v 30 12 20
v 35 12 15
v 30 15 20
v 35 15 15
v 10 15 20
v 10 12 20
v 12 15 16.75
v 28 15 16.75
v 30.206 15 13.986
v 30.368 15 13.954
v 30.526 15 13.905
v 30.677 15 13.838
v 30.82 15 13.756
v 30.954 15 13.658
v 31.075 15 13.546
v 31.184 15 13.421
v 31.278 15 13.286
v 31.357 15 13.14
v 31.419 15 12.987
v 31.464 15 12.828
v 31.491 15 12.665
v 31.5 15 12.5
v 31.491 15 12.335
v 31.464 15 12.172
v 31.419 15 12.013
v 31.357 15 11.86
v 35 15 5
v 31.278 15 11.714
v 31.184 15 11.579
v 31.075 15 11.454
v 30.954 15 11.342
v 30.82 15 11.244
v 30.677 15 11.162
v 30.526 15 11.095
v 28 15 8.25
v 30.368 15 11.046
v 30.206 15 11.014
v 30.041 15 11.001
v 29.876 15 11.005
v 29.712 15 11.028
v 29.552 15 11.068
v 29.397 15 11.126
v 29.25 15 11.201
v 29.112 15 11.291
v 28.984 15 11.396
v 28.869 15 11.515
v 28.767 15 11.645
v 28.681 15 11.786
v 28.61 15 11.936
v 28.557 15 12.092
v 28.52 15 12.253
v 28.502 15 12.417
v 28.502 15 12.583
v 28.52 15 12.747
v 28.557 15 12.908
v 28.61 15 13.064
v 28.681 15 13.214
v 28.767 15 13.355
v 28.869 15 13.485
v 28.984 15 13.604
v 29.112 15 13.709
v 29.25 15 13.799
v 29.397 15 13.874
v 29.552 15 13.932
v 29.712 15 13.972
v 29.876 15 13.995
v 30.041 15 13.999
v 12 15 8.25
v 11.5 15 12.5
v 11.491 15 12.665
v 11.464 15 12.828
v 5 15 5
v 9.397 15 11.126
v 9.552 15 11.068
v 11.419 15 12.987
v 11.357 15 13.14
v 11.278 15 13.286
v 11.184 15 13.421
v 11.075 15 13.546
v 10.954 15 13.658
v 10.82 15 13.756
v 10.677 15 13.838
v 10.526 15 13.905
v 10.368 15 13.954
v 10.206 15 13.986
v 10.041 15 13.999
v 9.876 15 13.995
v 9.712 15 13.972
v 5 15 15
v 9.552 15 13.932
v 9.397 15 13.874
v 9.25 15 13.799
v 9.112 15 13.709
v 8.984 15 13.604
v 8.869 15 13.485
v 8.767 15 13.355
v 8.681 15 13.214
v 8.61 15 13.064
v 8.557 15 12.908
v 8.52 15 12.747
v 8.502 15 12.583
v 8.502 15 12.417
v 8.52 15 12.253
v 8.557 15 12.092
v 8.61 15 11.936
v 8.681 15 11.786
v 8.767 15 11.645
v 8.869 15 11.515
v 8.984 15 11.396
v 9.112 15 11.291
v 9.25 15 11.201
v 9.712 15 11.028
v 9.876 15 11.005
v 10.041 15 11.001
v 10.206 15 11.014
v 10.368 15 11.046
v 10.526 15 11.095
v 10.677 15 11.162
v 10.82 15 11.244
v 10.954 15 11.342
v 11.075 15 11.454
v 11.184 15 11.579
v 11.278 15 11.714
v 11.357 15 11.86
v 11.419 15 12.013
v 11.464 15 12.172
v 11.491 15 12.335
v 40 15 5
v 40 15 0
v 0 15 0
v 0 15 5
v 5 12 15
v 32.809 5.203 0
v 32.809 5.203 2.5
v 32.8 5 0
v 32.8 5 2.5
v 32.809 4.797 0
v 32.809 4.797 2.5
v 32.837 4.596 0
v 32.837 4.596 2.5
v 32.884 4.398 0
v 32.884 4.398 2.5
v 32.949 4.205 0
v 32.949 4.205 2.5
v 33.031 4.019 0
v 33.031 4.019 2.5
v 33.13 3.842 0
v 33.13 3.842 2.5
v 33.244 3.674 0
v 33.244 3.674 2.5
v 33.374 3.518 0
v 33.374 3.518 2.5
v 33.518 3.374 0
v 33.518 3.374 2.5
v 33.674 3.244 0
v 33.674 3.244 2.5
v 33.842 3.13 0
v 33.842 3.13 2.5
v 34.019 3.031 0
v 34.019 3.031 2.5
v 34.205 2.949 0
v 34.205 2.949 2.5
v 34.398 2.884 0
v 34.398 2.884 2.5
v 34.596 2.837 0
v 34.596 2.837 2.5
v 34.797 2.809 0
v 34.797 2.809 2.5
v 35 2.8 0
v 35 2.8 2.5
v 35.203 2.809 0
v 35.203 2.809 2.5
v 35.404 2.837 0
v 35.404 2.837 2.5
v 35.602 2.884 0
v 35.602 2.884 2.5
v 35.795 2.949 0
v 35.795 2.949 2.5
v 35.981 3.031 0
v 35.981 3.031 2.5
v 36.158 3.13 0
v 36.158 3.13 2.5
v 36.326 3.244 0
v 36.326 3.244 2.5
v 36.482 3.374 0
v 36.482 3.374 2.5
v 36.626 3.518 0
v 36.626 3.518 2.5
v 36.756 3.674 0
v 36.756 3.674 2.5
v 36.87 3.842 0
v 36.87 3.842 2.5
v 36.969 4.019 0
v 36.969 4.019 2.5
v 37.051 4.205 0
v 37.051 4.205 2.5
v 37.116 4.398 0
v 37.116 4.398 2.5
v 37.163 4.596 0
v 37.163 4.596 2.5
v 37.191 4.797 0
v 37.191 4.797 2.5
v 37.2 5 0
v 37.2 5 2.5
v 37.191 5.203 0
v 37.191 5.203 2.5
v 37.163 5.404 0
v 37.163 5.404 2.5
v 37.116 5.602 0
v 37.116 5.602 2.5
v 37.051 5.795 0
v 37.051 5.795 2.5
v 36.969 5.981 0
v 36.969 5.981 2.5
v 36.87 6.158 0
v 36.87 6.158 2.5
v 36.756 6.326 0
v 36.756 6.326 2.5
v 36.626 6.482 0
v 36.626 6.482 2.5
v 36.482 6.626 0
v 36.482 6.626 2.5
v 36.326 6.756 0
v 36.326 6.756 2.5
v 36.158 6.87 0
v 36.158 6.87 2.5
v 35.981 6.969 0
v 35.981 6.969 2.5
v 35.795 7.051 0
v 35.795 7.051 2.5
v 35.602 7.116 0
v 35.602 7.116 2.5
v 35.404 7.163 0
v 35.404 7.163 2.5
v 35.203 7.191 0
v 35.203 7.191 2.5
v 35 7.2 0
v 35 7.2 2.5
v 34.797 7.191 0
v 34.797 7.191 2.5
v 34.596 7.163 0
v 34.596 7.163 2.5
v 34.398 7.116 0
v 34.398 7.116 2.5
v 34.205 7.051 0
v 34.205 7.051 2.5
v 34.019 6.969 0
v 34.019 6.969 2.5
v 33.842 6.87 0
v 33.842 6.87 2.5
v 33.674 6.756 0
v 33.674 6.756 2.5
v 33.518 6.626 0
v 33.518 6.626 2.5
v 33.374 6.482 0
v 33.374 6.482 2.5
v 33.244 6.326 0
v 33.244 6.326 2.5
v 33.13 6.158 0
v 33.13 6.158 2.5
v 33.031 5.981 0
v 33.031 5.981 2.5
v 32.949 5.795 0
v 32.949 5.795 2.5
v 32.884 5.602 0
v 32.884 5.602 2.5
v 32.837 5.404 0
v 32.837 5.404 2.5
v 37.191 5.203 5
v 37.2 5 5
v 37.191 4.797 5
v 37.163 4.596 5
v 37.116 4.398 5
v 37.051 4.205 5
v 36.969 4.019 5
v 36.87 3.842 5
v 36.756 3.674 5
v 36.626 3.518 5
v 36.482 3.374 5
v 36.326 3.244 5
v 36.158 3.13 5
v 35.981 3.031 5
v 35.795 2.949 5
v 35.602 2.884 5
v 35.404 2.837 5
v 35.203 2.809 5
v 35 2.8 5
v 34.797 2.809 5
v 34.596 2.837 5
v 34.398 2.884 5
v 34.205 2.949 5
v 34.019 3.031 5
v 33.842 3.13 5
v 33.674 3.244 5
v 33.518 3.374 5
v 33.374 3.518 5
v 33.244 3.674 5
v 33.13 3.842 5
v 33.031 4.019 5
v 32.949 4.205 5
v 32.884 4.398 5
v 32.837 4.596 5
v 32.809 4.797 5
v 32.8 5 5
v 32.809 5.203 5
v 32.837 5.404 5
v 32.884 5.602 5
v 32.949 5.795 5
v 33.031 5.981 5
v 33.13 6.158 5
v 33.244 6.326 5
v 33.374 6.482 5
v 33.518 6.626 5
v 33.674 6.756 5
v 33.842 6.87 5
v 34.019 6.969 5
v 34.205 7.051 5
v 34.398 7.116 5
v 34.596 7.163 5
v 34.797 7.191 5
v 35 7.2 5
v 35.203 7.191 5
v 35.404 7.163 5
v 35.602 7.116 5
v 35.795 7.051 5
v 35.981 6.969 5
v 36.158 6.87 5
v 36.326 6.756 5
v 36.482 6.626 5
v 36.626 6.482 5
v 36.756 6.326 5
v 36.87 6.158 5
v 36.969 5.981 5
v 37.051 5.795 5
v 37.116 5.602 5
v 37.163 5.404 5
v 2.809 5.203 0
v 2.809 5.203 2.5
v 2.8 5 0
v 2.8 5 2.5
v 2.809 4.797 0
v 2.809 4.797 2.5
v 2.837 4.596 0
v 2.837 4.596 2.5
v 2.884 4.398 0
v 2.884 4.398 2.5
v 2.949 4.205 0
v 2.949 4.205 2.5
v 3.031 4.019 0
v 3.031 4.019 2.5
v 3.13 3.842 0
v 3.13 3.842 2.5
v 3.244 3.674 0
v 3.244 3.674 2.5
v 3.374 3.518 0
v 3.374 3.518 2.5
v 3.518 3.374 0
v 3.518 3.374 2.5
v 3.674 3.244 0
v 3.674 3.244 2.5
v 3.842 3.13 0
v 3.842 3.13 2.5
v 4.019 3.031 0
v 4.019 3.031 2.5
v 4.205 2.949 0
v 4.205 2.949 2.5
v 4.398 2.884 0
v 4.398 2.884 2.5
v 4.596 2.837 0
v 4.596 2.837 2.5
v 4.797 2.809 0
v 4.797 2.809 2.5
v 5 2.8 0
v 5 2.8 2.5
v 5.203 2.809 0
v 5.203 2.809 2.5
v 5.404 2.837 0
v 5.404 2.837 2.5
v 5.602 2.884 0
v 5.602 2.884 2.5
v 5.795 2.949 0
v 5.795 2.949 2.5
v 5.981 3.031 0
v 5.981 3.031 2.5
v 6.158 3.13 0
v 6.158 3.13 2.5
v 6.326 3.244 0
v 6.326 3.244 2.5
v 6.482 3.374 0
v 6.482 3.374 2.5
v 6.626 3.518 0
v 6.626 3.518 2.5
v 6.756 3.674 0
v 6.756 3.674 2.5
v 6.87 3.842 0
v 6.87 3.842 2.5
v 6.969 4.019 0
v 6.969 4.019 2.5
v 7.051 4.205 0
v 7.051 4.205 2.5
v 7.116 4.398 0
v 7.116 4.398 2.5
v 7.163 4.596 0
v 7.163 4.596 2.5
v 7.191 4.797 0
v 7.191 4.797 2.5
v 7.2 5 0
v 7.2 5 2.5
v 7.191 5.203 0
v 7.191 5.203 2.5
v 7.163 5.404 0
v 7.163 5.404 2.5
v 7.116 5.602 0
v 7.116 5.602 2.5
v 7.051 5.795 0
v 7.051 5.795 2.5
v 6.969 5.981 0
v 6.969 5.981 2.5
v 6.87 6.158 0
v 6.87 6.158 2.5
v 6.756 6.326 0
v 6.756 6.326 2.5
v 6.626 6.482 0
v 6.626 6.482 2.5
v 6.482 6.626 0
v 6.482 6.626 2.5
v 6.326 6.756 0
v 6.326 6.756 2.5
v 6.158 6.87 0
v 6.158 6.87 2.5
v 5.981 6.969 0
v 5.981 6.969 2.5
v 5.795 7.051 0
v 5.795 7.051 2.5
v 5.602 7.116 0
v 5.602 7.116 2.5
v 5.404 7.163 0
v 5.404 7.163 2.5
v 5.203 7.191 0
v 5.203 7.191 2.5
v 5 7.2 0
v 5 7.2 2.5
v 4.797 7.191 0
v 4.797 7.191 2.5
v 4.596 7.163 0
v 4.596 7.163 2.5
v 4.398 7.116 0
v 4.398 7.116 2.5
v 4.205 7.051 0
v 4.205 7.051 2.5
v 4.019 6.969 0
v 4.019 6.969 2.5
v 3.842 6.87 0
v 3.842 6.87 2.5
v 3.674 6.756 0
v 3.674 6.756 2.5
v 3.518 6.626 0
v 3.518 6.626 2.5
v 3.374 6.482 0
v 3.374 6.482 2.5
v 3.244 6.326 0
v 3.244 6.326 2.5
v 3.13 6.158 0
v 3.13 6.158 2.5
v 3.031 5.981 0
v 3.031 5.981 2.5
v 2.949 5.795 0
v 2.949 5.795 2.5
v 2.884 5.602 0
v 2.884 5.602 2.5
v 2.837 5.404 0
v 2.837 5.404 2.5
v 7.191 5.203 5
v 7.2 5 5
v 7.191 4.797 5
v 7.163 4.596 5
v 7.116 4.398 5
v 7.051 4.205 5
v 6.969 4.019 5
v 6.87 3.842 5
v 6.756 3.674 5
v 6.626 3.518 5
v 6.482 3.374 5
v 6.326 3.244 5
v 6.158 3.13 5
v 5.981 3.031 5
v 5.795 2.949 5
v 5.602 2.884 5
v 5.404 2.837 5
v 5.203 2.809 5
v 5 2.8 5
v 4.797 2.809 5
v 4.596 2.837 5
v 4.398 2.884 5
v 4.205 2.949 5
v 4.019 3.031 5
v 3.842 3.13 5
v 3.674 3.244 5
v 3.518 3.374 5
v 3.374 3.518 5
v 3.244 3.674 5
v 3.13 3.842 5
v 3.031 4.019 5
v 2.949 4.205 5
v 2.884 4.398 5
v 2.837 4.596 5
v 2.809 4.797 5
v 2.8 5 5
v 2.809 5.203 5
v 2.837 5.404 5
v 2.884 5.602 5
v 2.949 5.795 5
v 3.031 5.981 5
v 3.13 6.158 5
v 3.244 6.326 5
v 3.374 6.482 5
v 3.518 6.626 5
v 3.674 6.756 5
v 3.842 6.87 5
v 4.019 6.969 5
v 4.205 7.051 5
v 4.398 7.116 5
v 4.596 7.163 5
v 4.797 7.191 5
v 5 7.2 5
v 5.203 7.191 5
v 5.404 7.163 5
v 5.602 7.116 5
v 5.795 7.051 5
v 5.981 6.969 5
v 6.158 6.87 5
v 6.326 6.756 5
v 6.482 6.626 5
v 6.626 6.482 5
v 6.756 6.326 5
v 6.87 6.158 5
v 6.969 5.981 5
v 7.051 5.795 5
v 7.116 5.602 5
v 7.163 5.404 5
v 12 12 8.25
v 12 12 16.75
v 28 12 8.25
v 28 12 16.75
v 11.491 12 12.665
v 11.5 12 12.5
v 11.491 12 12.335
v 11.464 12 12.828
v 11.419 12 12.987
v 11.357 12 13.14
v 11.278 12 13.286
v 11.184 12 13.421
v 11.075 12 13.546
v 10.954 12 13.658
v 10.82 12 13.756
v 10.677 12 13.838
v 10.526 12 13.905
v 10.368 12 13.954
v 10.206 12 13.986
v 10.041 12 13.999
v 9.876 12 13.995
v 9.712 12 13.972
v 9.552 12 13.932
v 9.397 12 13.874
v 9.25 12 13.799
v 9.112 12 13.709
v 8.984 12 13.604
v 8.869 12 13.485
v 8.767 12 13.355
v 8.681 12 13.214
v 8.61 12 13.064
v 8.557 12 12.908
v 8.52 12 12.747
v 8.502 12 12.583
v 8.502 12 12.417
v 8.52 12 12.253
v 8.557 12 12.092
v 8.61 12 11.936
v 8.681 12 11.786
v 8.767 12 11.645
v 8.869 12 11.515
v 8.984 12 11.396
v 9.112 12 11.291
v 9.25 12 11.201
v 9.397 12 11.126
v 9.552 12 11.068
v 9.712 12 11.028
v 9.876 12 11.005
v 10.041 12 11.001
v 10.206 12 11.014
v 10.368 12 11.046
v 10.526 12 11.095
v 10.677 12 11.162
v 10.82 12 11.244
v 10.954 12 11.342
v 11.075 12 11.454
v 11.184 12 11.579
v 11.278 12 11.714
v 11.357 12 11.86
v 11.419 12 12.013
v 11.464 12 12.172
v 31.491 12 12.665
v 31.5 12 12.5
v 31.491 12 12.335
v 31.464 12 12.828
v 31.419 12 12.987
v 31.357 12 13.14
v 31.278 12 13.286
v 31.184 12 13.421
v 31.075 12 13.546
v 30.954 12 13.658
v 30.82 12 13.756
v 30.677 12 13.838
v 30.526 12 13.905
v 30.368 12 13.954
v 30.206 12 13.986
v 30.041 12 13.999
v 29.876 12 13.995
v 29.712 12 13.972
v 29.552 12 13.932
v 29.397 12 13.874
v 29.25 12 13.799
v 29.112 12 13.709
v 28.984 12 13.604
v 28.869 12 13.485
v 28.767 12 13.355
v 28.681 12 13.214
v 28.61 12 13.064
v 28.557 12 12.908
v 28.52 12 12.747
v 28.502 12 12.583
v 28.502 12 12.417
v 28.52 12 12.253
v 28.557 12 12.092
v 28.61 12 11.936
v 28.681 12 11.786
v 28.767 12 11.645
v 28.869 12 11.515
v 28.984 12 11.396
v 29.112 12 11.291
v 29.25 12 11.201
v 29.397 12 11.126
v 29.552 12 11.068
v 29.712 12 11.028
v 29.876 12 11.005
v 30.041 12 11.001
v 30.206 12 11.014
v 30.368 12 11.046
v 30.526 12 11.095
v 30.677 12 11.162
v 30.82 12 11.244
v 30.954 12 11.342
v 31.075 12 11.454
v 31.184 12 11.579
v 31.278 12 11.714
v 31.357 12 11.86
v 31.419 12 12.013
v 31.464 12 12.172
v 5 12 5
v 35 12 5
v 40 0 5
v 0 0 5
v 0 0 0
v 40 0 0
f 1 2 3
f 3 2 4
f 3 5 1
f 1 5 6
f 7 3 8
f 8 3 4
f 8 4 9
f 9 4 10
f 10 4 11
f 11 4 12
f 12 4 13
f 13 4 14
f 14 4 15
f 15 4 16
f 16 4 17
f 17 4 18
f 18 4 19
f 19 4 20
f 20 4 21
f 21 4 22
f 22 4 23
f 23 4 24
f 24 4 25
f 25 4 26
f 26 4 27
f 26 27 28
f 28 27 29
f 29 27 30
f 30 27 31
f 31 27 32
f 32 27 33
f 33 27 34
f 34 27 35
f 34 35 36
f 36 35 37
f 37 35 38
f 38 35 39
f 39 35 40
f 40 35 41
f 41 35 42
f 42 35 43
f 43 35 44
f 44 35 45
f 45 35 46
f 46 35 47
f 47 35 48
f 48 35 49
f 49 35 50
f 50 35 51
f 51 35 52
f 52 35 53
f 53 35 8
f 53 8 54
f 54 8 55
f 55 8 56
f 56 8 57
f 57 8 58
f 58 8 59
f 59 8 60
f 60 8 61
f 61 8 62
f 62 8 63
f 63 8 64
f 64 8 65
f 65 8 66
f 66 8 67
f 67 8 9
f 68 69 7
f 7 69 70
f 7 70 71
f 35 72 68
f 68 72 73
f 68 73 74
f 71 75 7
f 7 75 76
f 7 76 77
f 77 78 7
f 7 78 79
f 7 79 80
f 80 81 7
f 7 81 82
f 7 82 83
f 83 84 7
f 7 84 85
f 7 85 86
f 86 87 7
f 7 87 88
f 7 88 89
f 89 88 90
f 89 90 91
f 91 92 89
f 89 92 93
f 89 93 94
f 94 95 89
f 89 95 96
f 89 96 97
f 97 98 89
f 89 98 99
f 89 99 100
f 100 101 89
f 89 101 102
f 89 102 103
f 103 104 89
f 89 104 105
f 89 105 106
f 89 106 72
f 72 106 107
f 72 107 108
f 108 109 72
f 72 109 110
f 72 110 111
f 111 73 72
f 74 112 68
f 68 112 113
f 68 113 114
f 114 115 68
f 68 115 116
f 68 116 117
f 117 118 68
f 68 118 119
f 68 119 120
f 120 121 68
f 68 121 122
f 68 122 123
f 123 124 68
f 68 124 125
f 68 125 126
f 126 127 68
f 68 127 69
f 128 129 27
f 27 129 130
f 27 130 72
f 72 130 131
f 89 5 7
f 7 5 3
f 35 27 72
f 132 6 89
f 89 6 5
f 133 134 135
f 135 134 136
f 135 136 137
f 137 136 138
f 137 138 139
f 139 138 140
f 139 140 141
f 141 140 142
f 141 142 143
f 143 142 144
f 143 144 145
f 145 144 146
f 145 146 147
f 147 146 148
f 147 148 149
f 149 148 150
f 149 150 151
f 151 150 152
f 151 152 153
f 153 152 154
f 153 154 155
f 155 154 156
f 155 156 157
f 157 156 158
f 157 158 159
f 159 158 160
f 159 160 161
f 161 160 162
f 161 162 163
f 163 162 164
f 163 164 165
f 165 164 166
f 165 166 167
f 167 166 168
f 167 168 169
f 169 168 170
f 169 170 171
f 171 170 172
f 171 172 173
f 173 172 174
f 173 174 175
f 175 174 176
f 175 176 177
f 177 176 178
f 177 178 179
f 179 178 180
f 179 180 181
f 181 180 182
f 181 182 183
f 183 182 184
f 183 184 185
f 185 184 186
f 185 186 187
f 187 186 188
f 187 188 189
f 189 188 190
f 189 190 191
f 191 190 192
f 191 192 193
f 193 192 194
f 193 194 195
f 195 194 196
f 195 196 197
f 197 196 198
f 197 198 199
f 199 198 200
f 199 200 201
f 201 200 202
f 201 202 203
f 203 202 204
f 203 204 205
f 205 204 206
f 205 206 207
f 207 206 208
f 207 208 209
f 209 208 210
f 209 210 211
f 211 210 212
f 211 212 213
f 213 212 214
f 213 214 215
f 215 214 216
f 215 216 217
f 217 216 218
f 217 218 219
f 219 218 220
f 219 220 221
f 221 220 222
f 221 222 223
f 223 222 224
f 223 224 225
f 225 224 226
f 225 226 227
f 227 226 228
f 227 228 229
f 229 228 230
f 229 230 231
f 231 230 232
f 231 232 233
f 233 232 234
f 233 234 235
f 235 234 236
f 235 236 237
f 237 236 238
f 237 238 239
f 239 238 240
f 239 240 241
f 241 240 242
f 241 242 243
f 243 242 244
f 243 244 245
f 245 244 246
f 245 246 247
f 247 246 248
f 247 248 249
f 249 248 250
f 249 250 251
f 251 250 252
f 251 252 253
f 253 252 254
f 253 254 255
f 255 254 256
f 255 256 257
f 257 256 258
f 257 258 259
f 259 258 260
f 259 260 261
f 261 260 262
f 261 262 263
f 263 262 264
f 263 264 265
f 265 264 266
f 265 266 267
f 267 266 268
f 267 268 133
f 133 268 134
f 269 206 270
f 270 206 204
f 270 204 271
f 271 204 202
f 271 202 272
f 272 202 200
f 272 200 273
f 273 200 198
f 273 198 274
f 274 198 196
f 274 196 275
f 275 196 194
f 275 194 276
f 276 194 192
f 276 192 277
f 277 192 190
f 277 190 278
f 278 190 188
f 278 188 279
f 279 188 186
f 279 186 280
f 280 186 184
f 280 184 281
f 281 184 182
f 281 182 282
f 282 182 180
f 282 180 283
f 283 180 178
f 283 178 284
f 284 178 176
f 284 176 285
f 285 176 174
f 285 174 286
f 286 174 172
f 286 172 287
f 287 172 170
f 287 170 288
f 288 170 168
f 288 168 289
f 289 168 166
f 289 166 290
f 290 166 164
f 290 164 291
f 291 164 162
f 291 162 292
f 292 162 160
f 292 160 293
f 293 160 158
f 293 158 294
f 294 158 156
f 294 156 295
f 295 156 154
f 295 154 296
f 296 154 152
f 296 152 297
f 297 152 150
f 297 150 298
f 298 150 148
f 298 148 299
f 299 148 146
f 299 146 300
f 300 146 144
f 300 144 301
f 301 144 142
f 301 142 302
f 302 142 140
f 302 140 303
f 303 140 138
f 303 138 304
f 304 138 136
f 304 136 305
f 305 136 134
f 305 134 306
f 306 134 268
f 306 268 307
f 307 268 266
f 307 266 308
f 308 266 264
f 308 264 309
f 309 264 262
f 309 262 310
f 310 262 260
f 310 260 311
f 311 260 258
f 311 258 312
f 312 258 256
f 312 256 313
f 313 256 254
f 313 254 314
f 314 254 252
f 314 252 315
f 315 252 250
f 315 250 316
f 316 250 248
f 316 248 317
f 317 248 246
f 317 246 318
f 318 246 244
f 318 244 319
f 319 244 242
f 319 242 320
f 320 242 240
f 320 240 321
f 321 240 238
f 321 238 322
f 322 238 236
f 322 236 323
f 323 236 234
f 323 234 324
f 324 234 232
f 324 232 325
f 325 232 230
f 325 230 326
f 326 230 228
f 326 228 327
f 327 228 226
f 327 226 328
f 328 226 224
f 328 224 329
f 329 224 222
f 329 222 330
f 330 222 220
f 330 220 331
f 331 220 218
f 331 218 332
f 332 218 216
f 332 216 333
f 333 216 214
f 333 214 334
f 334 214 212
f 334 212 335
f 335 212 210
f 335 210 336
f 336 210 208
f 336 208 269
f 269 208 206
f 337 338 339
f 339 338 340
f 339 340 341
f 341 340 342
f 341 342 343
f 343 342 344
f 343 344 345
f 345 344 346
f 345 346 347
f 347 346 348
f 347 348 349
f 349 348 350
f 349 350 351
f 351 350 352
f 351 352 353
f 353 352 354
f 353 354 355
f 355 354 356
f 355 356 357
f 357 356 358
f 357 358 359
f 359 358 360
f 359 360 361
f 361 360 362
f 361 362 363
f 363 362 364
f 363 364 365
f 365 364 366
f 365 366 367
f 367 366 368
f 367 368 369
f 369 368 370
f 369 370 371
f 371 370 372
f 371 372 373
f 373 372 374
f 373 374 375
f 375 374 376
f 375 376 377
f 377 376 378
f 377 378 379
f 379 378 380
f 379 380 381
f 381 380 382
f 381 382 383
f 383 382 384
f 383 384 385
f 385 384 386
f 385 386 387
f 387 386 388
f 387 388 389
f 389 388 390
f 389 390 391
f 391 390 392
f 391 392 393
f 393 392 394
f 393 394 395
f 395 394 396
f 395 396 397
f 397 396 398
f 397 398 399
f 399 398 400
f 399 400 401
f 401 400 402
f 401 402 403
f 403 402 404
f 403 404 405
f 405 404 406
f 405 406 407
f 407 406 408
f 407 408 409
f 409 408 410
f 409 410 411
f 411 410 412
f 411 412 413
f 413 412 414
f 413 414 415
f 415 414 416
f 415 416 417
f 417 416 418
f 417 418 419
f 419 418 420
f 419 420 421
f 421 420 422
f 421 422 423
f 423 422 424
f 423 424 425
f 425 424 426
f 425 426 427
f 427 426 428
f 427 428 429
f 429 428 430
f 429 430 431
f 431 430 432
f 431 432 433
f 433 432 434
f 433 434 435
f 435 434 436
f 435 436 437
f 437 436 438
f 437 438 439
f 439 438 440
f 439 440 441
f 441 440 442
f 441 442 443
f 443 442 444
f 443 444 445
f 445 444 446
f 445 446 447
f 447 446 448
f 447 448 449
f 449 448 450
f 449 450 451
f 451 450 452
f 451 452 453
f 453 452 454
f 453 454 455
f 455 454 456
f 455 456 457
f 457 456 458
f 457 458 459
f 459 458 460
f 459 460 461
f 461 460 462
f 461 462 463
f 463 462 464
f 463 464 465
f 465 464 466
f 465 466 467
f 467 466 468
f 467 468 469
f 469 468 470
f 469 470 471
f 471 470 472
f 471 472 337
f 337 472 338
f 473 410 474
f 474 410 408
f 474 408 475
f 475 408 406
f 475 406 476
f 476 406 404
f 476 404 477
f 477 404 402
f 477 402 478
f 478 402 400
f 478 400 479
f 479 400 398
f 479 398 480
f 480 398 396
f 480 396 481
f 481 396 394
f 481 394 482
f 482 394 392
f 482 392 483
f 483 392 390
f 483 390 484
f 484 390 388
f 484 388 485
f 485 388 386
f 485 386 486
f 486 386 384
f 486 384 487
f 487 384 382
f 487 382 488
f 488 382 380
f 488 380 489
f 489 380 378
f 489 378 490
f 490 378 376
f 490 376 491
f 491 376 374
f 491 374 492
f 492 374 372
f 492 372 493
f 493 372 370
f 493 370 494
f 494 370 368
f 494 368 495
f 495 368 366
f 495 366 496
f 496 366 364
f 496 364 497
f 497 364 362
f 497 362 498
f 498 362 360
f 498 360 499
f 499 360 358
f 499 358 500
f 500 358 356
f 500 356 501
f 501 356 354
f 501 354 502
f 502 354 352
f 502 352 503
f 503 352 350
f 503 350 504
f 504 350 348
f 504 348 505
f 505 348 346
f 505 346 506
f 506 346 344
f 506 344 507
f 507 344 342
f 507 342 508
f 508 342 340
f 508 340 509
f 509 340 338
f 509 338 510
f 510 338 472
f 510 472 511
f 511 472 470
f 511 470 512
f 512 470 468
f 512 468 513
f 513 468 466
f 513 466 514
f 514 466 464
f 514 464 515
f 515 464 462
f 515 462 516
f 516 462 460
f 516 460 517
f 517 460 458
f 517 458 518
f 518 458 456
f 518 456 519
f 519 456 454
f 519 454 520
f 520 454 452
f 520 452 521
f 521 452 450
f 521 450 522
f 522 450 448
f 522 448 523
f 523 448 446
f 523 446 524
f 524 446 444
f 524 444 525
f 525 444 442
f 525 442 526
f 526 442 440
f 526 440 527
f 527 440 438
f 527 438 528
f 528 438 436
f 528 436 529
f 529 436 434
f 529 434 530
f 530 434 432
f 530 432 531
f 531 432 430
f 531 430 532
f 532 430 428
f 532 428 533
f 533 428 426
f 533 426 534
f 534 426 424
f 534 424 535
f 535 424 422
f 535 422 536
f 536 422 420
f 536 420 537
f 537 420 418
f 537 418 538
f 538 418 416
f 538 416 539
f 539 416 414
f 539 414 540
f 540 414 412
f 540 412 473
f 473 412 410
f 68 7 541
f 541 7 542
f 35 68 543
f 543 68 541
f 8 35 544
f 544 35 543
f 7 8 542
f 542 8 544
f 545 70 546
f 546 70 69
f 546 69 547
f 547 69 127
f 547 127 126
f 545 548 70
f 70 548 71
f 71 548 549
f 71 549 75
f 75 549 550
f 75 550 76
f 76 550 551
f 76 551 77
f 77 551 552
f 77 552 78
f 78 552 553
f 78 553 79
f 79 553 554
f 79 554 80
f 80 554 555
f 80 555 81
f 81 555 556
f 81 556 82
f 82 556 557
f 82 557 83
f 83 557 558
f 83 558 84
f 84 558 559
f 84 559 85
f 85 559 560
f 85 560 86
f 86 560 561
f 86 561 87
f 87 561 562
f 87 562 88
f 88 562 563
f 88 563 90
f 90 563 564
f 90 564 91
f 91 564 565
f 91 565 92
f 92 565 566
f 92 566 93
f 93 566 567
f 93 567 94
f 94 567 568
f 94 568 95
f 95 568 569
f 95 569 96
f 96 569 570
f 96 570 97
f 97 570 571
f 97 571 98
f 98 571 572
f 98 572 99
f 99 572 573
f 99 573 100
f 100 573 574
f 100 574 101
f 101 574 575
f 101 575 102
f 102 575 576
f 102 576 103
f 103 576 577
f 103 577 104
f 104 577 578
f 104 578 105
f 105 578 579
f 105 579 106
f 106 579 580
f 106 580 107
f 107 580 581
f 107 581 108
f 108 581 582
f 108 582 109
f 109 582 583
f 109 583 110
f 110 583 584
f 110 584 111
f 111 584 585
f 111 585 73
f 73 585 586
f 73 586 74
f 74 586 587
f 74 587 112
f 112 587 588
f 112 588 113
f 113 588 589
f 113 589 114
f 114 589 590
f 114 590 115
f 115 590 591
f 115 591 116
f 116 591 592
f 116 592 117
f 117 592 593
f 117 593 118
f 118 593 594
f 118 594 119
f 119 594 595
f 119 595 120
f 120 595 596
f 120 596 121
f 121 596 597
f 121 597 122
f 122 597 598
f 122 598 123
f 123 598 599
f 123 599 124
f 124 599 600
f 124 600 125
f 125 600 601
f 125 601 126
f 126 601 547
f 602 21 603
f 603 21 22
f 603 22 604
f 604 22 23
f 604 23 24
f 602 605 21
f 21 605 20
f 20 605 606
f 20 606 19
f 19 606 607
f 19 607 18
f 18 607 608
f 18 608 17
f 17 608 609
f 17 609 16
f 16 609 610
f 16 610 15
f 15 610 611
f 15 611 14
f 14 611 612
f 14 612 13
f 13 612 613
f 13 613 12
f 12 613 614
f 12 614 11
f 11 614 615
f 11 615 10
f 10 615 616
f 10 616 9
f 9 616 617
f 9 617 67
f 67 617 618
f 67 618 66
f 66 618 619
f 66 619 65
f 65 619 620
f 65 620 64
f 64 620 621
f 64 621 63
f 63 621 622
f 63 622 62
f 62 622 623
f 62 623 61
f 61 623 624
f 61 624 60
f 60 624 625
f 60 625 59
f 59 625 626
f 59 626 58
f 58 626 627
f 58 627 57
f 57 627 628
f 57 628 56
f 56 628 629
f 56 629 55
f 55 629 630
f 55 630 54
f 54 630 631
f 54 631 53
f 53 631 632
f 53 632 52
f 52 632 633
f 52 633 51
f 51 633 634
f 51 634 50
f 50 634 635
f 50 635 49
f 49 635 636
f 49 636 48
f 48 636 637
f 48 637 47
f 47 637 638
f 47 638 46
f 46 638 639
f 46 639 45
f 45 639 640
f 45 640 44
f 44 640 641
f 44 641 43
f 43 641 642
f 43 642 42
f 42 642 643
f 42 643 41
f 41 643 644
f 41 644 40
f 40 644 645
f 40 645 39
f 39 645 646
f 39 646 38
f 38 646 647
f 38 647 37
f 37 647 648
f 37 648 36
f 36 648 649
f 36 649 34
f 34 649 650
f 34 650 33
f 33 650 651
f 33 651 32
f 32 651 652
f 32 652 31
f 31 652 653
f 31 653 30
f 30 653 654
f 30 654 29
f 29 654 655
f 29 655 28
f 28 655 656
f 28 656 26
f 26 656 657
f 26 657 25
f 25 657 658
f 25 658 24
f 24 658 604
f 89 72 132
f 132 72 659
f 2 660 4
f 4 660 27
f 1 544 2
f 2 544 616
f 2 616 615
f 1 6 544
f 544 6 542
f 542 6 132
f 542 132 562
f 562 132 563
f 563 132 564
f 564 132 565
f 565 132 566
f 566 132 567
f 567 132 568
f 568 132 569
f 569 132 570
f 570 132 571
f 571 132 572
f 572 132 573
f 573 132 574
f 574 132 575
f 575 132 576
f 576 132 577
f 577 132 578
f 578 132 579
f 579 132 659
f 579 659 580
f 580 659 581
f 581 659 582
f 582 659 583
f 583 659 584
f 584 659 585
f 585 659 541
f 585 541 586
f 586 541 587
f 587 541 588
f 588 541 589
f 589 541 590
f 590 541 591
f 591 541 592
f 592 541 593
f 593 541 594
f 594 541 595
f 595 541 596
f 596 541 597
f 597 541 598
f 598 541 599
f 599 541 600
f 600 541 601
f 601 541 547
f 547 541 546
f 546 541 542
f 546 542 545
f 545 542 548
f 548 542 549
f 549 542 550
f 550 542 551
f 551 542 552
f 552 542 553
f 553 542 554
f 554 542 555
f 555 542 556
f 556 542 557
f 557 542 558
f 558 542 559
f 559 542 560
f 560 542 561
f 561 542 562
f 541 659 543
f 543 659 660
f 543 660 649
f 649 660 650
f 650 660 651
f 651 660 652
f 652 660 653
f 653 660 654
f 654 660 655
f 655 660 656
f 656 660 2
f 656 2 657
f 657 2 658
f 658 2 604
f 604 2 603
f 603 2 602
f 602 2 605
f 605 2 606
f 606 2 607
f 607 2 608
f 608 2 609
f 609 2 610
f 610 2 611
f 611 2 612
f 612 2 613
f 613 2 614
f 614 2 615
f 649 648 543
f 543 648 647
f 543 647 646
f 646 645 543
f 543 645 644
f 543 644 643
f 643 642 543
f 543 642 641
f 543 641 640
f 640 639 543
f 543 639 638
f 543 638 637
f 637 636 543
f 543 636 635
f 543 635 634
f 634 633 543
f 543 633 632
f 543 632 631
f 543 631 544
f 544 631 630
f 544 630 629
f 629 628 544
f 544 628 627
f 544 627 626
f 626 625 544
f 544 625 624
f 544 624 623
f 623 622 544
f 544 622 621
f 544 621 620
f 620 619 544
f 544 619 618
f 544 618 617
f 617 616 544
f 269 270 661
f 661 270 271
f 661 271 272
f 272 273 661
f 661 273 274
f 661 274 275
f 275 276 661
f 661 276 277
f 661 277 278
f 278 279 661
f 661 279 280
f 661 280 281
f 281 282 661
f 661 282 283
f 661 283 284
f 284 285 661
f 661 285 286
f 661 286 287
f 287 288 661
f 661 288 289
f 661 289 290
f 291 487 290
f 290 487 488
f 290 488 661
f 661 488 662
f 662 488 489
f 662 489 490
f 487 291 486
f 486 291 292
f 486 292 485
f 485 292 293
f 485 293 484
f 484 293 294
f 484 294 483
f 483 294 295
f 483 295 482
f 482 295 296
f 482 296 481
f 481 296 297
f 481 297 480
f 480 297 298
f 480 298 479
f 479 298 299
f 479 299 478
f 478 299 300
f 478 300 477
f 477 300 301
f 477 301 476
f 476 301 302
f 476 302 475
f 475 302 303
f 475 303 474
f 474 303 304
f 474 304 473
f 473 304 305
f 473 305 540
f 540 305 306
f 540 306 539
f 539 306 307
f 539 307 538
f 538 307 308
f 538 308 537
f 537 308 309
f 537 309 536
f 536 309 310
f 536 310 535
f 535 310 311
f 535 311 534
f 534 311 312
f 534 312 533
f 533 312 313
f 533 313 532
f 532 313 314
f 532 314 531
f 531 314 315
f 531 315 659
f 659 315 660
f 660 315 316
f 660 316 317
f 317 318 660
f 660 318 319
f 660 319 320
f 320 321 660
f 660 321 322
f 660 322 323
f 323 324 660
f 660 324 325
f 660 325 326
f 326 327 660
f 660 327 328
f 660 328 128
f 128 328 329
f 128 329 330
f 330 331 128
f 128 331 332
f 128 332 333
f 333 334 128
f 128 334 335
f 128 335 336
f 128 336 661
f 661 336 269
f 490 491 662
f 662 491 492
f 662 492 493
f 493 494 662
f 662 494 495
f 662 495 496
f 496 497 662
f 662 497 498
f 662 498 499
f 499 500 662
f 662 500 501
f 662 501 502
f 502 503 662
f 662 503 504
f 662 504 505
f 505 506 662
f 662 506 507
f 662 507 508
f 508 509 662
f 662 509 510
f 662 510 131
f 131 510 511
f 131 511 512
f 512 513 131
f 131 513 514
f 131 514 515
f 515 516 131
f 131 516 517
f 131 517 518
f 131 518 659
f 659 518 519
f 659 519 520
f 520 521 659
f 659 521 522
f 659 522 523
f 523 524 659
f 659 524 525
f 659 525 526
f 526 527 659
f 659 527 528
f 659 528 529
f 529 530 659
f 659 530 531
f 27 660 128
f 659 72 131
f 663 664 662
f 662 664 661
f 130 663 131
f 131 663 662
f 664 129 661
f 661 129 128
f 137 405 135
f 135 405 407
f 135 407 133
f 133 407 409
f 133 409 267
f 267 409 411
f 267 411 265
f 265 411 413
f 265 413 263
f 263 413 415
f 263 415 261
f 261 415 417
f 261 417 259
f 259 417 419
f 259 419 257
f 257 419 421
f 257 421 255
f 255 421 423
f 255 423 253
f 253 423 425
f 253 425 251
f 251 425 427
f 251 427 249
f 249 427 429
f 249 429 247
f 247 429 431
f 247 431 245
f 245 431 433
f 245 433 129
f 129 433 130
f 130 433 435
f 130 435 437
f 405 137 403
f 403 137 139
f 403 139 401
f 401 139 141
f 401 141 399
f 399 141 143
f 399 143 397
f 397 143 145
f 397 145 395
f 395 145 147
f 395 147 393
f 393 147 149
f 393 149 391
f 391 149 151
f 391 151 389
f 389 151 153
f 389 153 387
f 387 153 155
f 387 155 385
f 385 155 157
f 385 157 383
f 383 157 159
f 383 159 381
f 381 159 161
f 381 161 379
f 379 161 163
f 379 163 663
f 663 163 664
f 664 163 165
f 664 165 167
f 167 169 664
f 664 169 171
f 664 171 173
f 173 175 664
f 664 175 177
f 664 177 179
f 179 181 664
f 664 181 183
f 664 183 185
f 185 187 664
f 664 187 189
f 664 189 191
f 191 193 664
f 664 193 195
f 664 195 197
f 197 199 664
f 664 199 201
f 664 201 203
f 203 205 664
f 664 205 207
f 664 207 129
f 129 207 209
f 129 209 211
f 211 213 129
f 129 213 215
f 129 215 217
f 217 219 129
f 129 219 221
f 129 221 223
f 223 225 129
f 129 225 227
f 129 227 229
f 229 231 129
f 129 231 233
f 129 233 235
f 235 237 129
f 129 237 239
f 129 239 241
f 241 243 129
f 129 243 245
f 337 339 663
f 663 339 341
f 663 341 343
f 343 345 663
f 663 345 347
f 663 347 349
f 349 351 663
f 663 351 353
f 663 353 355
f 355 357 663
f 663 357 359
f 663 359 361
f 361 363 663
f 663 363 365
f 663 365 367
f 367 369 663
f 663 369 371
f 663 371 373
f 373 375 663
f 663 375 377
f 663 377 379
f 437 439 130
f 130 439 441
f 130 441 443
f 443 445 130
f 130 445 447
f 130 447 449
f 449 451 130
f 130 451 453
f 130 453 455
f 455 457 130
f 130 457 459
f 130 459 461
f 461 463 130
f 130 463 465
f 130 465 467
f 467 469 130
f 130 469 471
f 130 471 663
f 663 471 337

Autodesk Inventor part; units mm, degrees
ref_plane "YZ Plane" through (0, 0, 0) normal (1, 0, 0) x (0, 1, 0)
ref_plane "XZ Plane" through (0, 0, 0) normal (0, 1, 0) x (-1, 0, 0)
ref_plane "XY Plane" through (0, 0, 0) normal (0, 0, 1) x (1, 0, 0)
sketch "Sketch1" plane through (0, 0, 0) normal (0, 0, 1) x (1, 0, 0)
  line L0 (0, 0) -> (40, 0)
  line L1 (40, 0) -> (40, 15)
  line L2 (40, 15) -> (0, 15)
  line L3 (0, 15) -> (0, 0)
  dimension "d0" = 40
  dimension "d1" = 15
extrude "Extrusion1" add sketch "Sketch1" along normal blind 5
sketch "Sketch2" plane through (0, 15, 0) normal (0, 1, 0) x (1, 0, 0)
  line L0 (35, -5) -> (5, -5)
  line L1 (5, -5) -> (5, -20)
  line L2 (5, -20) -> (35, -20)
  line L3 (28, -16.75) -> (12, -16.75)
  line L4 (12, -16.75) -> (12, -8.25)
  line L5 (12, -8.25) -> (28, -8.25)
  circle A0 centre (30, -12.5) radius 1.5
  circle A1 centre (10, -12.5) radius 1.5
  line L6 (28, -16.75) -> (28, -8.25)
  line L7 (0, 0) -> (0, -5) projected
  line L8 (40, -5) -> (0, -5) projected
  line L9 (35, -5) -> (35, -20)
  dimension "d4" = 8.5
  dimension "d7" = 4.25
  dimension "d8" = 4.25
  dimension "d9" = 3
  dimension "d10" = 3
  dimension "d11" = 20
  dimension "d13" = 16
  dimension "d14" = 2
  dimension "d28" = 5
  dimension "d29" = 5
  dimension "d30" = 5
  dimension "d31" = 15
  dimension "d32" = 3.25
extrude "Extrusion2" add sketch "Sketch2" against normal blind 3
sketch "Sketch3" plane through (0, 0, 5) normal (0, 0, 1) x (1, 0, 0)
  circle A0 centre (35, 5) radius 2.2
  circle A1 centre (5, 5) radius 2.2
  line L0 (40, 0) -> (40, 15) projected
  line L1 (0, 15) -> (0, 0) projected
  line L2 (0, 0) -> (40, 0) projected
  point P0 (40, 17)
  point P1 (0, 17)
  dimension "d17" = 4.4
  dimension "d18" = 5
  dimension "d19" = 5
  dimension "d20" = 4.4
  dimension "d21" = 5
  dimension "d22" = 5
extrude "Extrusion3" cut sketch "Sketch3" against normal blind 10
chamfer "Chamfer1" distance 5 angle 45 2 edges at (5, 13.5, 20) (35, 13.5, 20)
properties part number "xt60_plug_mount_v2"
